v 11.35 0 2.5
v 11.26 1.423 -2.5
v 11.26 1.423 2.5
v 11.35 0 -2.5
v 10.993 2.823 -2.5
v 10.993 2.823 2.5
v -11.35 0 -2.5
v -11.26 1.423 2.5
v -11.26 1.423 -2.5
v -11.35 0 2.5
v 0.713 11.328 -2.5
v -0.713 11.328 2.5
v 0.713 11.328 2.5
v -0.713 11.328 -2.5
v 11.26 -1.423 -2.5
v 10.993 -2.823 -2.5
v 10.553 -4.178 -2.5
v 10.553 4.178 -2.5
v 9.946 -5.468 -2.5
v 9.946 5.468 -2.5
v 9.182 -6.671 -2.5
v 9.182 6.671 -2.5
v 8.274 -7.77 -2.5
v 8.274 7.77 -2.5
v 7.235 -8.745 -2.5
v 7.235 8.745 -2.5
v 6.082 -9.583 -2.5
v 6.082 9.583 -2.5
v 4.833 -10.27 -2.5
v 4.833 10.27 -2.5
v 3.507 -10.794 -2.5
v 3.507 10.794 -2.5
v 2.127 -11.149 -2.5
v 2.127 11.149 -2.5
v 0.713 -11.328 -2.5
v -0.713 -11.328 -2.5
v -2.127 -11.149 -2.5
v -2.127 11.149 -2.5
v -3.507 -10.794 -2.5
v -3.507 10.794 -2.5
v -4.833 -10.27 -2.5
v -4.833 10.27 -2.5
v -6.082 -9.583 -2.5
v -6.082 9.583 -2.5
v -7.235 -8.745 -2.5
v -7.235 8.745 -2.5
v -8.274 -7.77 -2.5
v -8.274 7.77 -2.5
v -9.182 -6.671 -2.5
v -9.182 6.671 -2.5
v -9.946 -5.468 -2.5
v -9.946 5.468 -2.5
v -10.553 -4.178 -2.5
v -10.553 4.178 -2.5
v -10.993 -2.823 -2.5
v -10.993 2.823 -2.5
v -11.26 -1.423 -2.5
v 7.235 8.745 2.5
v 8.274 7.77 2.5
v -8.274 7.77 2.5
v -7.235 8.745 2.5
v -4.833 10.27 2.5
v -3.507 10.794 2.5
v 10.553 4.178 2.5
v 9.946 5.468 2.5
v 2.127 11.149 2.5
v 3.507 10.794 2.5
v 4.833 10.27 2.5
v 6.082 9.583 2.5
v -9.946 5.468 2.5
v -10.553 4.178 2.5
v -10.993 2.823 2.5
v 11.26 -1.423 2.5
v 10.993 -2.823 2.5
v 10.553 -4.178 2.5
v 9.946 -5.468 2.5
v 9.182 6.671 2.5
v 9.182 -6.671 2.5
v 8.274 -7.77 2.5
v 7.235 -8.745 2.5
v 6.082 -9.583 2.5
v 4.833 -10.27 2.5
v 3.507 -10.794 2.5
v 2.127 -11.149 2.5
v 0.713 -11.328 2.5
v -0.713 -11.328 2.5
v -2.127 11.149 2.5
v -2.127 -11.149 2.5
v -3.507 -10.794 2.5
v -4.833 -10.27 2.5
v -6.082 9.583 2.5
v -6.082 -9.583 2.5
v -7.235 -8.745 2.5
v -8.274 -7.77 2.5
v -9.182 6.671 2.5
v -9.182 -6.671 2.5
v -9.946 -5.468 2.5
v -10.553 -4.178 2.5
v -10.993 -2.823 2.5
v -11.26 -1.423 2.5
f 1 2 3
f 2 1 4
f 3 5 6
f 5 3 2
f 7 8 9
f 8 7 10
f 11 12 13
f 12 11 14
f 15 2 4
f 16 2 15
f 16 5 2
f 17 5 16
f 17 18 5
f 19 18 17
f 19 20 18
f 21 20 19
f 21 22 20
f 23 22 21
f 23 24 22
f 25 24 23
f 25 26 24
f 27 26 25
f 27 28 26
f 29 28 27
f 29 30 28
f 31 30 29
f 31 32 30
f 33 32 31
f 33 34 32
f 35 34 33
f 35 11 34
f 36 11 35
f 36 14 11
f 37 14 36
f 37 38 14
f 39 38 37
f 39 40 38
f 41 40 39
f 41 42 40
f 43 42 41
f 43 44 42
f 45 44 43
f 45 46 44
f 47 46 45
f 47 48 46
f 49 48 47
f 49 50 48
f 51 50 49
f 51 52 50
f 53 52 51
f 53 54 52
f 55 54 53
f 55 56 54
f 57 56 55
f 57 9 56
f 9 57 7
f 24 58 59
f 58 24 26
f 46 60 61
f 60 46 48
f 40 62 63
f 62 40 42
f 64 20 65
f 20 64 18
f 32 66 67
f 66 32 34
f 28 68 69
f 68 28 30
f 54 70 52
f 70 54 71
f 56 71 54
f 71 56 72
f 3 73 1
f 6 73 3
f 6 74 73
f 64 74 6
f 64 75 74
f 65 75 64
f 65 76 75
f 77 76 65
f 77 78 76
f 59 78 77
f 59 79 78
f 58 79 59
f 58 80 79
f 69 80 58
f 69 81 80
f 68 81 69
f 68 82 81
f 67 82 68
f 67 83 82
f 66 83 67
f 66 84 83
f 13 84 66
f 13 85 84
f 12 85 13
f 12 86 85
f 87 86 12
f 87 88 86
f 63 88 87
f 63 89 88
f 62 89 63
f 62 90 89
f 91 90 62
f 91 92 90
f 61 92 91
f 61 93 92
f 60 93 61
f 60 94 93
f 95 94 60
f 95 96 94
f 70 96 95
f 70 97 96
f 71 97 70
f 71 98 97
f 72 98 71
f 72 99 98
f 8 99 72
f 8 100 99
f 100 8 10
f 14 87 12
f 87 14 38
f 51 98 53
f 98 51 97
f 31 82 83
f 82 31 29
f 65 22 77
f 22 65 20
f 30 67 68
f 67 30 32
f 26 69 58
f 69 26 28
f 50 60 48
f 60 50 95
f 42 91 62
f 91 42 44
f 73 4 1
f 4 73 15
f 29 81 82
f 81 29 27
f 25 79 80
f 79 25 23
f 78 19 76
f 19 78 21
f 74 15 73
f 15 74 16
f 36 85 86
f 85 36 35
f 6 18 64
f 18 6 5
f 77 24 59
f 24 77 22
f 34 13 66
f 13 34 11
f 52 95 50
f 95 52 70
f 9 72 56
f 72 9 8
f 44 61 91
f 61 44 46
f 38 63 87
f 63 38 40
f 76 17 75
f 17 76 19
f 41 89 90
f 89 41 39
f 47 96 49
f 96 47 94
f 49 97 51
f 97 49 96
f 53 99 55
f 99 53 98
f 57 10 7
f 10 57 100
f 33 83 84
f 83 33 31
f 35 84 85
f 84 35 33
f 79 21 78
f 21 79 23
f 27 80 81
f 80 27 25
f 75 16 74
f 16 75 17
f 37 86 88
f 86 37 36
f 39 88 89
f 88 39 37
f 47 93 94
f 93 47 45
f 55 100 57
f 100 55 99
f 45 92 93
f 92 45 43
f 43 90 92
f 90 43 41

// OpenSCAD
$fn = 50;


difference() {
	union() {
		translate(v = [0, 0, -2.5000000000]) {
			cylinder(h = 5, r = 11.3500000000);
		}
	}
	union() {
		translate(v = [0, 0, -100.0000000000]) {
			cylinder(h = 200, r = 0);
		}
	}
}
